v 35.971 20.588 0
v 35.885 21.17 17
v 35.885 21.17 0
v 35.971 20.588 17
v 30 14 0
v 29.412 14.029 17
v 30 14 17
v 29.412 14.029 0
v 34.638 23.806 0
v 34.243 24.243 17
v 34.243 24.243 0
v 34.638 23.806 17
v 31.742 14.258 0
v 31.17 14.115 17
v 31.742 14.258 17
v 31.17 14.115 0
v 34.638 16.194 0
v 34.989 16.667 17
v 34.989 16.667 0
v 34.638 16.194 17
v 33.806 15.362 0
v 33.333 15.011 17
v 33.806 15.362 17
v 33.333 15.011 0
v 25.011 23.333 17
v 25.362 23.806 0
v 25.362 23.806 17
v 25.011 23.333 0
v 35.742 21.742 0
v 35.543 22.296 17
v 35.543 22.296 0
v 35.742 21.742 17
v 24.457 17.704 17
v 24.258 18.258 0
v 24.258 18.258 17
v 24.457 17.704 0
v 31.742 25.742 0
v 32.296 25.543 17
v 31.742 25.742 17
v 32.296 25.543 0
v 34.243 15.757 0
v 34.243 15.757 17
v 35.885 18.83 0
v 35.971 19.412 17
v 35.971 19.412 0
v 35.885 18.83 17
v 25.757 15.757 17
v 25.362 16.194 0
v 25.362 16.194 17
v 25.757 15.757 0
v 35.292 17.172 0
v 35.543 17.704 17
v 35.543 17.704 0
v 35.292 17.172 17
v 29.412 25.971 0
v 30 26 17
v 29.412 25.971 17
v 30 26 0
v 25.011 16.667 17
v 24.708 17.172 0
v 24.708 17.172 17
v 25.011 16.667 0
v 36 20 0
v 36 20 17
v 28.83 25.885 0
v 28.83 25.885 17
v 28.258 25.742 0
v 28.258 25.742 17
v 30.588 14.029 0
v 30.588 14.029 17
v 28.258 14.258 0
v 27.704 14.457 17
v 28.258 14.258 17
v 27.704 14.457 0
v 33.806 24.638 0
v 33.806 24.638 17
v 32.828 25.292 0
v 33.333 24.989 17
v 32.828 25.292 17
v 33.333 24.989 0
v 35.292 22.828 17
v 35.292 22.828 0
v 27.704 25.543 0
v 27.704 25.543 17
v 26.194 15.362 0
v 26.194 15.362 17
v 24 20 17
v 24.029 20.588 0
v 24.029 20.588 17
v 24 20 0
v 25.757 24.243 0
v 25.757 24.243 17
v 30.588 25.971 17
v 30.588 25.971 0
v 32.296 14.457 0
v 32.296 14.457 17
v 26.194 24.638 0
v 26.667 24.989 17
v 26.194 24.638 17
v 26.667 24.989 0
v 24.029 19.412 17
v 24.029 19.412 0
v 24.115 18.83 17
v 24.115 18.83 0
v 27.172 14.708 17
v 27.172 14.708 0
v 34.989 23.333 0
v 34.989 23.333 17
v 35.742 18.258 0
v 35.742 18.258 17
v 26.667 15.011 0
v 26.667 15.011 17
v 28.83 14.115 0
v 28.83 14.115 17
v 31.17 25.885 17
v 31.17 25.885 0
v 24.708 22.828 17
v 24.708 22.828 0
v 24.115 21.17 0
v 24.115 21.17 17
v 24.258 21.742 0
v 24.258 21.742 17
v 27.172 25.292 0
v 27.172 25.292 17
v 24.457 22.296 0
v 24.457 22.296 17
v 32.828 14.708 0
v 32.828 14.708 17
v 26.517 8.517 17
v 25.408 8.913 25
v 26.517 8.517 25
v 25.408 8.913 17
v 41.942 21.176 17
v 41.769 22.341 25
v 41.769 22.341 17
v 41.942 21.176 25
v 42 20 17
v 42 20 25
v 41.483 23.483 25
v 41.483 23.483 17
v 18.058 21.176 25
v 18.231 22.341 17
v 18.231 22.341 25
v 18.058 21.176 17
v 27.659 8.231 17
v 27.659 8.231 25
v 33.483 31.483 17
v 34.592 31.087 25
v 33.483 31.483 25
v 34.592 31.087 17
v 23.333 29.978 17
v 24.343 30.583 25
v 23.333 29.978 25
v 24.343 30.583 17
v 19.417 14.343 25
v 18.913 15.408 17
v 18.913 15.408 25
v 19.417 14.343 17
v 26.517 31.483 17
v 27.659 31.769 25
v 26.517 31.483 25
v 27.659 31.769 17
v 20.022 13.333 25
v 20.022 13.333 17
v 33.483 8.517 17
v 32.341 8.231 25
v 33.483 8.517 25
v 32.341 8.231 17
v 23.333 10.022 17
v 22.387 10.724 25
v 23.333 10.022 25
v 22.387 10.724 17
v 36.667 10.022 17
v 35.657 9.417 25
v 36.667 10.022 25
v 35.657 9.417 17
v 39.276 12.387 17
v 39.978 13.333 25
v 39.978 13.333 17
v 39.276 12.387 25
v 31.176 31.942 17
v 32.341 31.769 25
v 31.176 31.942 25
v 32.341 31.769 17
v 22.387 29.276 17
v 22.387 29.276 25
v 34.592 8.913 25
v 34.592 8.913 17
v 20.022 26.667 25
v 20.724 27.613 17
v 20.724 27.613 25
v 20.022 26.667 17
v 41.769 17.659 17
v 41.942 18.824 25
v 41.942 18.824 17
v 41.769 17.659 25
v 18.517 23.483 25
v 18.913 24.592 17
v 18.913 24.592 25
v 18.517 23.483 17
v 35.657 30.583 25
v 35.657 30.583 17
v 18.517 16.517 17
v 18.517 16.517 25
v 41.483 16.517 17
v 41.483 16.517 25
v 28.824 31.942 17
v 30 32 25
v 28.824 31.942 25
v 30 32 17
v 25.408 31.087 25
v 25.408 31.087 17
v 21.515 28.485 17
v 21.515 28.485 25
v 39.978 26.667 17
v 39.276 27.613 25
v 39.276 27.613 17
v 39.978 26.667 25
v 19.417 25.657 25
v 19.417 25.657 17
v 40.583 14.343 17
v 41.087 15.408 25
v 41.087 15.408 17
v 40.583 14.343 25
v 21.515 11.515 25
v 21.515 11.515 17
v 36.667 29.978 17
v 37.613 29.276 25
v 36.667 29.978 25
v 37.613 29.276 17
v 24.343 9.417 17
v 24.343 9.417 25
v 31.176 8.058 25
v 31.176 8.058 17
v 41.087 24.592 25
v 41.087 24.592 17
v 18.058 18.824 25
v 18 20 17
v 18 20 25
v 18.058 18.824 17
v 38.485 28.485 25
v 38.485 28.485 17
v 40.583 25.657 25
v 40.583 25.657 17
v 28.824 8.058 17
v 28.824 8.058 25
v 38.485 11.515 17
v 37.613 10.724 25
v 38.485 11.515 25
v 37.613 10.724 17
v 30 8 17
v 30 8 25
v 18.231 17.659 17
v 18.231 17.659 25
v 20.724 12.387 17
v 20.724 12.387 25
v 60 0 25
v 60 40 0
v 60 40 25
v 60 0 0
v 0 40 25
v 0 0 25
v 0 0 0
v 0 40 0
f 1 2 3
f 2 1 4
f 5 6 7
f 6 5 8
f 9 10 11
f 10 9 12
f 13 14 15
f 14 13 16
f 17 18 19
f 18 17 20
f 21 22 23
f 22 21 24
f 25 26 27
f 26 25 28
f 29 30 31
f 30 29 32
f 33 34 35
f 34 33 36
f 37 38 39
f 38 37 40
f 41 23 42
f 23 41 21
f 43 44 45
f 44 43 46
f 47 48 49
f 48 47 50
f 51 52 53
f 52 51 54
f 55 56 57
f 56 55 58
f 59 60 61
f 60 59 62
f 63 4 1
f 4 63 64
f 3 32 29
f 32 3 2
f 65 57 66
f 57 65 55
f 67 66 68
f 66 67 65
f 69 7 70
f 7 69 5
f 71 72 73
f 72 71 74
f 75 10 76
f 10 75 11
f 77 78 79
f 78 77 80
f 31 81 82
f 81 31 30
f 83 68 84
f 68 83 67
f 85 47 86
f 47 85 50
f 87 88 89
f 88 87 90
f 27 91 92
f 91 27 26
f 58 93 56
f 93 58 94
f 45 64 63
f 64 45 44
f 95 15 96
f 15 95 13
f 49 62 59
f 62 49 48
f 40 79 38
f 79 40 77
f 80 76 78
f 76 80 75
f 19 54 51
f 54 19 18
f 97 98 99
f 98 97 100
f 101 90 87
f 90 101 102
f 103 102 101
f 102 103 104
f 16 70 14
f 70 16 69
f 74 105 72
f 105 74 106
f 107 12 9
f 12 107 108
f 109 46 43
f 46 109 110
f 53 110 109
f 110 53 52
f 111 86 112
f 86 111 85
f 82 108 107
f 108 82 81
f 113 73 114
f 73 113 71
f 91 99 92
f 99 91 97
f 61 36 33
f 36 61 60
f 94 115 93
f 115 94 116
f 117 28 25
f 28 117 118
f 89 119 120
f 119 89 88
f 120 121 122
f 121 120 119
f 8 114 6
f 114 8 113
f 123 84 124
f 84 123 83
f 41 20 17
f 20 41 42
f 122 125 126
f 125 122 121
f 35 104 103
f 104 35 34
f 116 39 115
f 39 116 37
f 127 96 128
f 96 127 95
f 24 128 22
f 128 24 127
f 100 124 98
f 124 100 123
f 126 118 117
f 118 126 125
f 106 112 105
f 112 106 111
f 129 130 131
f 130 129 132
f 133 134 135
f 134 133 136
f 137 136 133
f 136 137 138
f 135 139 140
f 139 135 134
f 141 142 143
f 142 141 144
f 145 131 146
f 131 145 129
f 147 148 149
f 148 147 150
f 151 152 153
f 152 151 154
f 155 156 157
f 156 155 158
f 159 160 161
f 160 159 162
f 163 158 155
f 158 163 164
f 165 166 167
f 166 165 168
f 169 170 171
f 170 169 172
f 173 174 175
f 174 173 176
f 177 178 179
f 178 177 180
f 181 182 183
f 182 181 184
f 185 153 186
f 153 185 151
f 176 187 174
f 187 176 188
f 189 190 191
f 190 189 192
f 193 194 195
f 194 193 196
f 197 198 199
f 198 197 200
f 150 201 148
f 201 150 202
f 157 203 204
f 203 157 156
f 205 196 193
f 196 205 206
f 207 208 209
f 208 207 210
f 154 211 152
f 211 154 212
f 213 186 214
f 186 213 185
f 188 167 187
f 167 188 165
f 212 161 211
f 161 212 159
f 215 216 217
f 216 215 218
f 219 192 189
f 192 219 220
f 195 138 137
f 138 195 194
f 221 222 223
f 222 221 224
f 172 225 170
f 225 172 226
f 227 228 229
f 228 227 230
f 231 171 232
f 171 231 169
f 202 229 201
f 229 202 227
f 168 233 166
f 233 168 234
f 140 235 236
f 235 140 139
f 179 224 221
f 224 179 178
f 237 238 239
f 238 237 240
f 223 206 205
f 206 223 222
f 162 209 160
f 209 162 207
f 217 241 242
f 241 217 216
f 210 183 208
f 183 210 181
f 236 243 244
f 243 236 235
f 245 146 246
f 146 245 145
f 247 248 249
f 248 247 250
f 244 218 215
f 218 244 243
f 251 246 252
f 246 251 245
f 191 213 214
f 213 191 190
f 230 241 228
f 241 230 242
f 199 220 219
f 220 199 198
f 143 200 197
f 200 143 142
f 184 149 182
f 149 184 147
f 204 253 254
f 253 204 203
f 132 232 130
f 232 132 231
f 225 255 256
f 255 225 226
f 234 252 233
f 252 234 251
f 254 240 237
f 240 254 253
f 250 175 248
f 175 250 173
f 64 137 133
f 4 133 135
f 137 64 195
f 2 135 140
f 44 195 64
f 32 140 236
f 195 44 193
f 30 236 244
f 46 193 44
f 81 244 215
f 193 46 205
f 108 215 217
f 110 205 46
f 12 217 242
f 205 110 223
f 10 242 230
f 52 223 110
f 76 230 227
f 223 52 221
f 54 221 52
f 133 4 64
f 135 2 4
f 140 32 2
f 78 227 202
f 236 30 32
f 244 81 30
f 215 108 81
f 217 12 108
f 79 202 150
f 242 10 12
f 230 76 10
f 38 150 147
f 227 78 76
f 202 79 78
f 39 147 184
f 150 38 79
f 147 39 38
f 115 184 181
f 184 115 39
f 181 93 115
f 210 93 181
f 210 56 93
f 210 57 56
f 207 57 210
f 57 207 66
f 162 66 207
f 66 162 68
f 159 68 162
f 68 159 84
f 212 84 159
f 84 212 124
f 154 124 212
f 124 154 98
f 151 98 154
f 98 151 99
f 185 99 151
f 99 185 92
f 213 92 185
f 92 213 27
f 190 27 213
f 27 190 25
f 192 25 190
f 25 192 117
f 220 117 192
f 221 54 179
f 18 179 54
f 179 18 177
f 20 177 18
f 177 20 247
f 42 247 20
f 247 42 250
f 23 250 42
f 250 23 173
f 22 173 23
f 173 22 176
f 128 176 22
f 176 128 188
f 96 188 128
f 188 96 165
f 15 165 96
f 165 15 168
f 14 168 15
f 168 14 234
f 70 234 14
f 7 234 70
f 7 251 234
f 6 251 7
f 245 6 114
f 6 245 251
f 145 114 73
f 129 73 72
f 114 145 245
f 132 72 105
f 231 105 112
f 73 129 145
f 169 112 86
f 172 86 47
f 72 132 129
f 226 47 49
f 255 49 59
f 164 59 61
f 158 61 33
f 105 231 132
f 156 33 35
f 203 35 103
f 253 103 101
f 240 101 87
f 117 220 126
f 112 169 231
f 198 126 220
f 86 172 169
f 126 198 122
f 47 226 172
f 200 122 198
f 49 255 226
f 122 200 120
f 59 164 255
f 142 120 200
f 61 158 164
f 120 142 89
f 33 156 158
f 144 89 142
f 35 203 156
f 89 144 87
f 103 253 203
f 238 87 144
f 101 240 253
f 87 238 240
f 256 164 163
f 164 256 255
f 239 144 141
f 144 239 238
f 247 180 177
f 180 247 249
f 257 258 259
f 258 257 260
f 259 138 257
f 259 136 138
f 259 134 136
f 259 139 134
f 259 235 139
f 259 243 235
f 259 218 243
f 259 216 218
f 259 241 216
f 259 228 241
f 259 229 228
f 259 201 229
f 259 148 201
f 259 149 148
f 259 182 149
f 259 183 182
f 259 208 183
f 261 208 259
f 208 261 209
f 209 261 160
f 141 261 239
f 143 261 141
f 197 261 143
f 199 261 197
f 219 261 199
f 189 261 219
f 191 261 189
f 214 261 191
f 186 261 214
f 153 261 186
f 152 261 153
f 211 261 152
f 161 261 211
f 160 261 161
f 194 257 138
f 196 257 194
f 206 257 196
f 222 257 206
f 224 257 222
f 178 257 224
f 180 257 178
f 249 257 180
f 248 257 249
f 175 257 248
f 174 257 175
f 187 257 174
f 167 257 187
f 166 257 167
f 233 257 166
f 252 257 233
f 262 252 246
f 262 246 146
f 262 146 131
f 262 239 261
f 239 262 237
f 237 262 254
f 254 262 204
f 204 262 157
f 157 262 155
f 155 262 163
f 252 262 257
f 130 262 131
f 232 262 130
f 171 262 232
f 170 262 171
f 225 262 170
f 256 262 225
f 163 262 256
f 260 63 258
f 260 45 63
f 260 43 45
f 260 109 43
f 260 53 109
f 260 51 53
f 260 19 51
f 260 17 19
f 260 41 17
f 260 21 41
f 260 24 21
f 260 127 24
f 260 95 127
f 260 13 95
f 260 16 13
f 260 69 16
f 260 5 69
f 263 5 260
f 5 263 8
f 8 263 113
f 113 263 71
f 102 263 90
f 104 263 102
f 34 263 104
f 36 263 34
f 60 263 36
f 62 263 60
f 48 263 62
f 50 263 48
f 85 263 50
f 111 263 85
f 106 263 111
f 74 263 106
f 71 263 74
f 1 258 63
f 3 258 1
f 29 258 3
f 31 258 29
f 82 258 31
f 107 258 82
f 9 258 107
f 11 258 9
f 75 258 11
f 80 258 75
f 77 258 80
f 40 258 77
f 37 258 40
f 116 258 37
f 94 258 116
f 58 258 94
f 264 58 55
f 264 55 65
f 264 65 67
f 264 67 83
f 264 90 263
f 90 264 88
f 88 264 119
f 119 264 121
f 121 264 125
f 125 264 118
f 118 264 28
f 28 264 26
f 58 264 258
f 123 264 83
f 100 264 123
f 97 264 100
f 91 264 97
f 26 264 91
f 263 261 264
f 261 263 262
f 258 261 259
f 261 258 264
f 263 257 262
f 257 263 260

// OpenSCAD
// 沉頭孔塊（cbore）— 由 ortho_lib_work/objects.py 產生，請改 objects.py 後重建
// 長方塊 60×40×25，中央有直徑 12 的貫穿孔，孔口有直徑 24、深 8 的沉頭。
difference() {
  union() {
    translate([0,0,0]) cube([60,40,25]);
  }
  union() {
    multmatrix([[1,0,0,0],[0,1,0,0],[0,0,1,-1],[0,0,0,1]]) translate([30,20,0]) cylinder(h=27, r=6, $fn=64);
    multmatrix([[1,0,0,0],[0,1,0,0],[0,0,1,17],[0,0,0,1]]) translate([30,20,0]) cylinder(h=9, r=12, $fn=64);
  }
}
